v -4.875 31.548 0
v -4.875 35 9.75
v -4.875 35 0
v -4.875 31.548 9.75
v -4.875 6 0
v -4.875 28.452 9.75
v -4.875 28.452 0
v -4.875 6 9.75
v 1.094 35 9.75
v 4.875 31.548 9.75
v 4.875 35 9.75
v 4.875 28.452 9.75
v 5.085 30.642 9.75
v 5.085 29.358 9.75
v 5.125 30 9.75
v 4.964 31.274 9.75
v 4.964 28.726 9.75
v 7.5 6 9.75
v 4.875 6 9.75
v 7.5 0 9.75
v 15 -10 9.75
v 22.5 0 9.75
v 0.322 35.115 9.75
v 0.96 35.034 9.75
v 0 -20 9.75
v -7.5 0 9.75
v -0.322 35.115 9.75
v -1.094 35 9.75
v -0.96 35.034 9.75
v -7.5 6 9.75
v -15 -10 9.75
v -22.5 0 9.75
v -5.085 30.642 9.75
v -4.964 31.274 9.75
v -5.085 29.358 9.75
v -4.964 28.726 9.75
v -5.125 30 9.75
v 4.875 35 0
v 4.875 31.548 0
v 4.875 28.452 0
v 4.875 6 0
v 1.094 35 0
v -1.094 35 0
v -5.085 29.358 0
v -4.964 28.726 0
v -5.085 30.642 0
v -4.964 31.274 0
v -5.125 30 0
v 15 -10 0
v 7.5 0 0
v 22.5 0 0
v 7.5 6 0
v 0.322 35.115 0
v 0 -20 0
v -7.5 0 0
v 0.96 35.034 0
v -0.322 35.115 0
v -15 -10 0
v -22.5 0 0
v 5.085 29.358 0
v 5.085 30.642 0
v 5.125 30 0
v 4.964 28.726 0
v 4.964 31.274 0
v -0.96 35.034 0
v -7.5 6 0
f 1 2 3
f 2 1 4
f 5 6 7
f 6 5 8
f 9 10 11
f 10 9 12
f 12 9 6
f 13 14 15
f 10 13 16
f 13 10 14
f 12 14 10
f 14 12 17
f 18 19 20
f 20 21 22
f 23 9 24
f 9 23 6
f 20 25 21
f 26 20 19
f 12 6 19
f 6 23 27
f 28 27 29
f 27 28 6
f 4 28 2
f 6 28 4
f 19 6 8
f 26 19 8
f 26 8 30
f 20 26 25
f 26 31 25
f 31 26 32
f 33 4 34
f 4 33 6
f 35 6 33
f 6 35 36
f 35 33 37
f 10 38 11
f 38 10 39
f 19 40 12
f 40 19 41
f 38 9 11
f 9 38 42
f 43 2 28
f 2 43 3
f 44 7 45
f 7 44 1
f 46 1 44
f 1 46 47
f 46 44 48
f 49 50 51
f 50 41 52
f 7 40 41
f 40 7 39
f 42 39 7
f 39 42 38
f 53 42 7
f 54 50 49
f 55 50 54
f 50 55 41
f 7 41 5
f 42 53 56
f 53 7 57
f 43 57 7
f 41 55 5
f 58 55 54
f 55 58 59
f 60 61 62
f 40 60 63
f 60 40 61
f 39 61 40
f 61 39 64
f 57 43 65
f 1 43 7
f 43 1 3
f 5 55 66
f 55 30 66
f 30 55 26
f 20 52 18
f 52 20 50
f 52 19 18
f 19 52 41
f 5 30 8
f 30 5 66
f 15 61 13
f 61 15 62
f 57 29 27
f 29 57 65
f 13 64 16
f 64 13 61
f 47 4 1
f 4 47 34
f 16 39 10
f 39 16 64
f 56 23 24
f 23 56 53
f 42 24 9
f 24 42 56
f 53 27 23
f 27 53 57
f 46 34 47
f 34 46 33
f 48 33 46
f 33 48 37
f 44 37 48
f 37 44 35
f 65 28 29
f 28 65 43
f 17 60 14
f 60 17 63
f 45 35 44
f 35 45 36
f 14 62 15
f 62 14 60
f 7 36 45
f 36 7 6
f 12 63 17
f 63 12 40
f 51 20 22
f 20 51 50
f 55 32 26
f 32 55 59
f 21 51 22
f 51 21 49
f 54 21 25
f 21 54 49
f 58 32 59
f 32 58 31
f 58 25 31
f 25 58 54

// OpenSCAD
// carrot bottom insert

// clearance
tol = 0.25;

// innere insert parameters
iih = 10;
iiw = 10;
iil = 20;

// outer insert parameters
iob = 45;
iol = 20;
ioh = iih;
irh = iih;
irw = 15;
irl = 6;

real_h = iih - tol;

pp = [[-iob / 2, 0],
	[-iob / 3 , -iol / 2],
	[0, -iol],
	[iob / 3 , -iol / 2],
	[iob / 2, 0]];
pl = [[0, 1, 2, 3, 4]];

translate([-(iiw - tol) / 2, 0, 0]) cube([iiw - tol, iil + irw, real_h]);
translate([-irw / 2, -irl, 0]) cube([irw, irl * 2, real_h]);
translate([0, iil + irw - iih / 2, 0]) cylinder(d = iiw + tol, h = real_h, $fn = 50);
translate([0, 0, 0]) linear_extrude(real_h) polygon(pp, pl, 10);
